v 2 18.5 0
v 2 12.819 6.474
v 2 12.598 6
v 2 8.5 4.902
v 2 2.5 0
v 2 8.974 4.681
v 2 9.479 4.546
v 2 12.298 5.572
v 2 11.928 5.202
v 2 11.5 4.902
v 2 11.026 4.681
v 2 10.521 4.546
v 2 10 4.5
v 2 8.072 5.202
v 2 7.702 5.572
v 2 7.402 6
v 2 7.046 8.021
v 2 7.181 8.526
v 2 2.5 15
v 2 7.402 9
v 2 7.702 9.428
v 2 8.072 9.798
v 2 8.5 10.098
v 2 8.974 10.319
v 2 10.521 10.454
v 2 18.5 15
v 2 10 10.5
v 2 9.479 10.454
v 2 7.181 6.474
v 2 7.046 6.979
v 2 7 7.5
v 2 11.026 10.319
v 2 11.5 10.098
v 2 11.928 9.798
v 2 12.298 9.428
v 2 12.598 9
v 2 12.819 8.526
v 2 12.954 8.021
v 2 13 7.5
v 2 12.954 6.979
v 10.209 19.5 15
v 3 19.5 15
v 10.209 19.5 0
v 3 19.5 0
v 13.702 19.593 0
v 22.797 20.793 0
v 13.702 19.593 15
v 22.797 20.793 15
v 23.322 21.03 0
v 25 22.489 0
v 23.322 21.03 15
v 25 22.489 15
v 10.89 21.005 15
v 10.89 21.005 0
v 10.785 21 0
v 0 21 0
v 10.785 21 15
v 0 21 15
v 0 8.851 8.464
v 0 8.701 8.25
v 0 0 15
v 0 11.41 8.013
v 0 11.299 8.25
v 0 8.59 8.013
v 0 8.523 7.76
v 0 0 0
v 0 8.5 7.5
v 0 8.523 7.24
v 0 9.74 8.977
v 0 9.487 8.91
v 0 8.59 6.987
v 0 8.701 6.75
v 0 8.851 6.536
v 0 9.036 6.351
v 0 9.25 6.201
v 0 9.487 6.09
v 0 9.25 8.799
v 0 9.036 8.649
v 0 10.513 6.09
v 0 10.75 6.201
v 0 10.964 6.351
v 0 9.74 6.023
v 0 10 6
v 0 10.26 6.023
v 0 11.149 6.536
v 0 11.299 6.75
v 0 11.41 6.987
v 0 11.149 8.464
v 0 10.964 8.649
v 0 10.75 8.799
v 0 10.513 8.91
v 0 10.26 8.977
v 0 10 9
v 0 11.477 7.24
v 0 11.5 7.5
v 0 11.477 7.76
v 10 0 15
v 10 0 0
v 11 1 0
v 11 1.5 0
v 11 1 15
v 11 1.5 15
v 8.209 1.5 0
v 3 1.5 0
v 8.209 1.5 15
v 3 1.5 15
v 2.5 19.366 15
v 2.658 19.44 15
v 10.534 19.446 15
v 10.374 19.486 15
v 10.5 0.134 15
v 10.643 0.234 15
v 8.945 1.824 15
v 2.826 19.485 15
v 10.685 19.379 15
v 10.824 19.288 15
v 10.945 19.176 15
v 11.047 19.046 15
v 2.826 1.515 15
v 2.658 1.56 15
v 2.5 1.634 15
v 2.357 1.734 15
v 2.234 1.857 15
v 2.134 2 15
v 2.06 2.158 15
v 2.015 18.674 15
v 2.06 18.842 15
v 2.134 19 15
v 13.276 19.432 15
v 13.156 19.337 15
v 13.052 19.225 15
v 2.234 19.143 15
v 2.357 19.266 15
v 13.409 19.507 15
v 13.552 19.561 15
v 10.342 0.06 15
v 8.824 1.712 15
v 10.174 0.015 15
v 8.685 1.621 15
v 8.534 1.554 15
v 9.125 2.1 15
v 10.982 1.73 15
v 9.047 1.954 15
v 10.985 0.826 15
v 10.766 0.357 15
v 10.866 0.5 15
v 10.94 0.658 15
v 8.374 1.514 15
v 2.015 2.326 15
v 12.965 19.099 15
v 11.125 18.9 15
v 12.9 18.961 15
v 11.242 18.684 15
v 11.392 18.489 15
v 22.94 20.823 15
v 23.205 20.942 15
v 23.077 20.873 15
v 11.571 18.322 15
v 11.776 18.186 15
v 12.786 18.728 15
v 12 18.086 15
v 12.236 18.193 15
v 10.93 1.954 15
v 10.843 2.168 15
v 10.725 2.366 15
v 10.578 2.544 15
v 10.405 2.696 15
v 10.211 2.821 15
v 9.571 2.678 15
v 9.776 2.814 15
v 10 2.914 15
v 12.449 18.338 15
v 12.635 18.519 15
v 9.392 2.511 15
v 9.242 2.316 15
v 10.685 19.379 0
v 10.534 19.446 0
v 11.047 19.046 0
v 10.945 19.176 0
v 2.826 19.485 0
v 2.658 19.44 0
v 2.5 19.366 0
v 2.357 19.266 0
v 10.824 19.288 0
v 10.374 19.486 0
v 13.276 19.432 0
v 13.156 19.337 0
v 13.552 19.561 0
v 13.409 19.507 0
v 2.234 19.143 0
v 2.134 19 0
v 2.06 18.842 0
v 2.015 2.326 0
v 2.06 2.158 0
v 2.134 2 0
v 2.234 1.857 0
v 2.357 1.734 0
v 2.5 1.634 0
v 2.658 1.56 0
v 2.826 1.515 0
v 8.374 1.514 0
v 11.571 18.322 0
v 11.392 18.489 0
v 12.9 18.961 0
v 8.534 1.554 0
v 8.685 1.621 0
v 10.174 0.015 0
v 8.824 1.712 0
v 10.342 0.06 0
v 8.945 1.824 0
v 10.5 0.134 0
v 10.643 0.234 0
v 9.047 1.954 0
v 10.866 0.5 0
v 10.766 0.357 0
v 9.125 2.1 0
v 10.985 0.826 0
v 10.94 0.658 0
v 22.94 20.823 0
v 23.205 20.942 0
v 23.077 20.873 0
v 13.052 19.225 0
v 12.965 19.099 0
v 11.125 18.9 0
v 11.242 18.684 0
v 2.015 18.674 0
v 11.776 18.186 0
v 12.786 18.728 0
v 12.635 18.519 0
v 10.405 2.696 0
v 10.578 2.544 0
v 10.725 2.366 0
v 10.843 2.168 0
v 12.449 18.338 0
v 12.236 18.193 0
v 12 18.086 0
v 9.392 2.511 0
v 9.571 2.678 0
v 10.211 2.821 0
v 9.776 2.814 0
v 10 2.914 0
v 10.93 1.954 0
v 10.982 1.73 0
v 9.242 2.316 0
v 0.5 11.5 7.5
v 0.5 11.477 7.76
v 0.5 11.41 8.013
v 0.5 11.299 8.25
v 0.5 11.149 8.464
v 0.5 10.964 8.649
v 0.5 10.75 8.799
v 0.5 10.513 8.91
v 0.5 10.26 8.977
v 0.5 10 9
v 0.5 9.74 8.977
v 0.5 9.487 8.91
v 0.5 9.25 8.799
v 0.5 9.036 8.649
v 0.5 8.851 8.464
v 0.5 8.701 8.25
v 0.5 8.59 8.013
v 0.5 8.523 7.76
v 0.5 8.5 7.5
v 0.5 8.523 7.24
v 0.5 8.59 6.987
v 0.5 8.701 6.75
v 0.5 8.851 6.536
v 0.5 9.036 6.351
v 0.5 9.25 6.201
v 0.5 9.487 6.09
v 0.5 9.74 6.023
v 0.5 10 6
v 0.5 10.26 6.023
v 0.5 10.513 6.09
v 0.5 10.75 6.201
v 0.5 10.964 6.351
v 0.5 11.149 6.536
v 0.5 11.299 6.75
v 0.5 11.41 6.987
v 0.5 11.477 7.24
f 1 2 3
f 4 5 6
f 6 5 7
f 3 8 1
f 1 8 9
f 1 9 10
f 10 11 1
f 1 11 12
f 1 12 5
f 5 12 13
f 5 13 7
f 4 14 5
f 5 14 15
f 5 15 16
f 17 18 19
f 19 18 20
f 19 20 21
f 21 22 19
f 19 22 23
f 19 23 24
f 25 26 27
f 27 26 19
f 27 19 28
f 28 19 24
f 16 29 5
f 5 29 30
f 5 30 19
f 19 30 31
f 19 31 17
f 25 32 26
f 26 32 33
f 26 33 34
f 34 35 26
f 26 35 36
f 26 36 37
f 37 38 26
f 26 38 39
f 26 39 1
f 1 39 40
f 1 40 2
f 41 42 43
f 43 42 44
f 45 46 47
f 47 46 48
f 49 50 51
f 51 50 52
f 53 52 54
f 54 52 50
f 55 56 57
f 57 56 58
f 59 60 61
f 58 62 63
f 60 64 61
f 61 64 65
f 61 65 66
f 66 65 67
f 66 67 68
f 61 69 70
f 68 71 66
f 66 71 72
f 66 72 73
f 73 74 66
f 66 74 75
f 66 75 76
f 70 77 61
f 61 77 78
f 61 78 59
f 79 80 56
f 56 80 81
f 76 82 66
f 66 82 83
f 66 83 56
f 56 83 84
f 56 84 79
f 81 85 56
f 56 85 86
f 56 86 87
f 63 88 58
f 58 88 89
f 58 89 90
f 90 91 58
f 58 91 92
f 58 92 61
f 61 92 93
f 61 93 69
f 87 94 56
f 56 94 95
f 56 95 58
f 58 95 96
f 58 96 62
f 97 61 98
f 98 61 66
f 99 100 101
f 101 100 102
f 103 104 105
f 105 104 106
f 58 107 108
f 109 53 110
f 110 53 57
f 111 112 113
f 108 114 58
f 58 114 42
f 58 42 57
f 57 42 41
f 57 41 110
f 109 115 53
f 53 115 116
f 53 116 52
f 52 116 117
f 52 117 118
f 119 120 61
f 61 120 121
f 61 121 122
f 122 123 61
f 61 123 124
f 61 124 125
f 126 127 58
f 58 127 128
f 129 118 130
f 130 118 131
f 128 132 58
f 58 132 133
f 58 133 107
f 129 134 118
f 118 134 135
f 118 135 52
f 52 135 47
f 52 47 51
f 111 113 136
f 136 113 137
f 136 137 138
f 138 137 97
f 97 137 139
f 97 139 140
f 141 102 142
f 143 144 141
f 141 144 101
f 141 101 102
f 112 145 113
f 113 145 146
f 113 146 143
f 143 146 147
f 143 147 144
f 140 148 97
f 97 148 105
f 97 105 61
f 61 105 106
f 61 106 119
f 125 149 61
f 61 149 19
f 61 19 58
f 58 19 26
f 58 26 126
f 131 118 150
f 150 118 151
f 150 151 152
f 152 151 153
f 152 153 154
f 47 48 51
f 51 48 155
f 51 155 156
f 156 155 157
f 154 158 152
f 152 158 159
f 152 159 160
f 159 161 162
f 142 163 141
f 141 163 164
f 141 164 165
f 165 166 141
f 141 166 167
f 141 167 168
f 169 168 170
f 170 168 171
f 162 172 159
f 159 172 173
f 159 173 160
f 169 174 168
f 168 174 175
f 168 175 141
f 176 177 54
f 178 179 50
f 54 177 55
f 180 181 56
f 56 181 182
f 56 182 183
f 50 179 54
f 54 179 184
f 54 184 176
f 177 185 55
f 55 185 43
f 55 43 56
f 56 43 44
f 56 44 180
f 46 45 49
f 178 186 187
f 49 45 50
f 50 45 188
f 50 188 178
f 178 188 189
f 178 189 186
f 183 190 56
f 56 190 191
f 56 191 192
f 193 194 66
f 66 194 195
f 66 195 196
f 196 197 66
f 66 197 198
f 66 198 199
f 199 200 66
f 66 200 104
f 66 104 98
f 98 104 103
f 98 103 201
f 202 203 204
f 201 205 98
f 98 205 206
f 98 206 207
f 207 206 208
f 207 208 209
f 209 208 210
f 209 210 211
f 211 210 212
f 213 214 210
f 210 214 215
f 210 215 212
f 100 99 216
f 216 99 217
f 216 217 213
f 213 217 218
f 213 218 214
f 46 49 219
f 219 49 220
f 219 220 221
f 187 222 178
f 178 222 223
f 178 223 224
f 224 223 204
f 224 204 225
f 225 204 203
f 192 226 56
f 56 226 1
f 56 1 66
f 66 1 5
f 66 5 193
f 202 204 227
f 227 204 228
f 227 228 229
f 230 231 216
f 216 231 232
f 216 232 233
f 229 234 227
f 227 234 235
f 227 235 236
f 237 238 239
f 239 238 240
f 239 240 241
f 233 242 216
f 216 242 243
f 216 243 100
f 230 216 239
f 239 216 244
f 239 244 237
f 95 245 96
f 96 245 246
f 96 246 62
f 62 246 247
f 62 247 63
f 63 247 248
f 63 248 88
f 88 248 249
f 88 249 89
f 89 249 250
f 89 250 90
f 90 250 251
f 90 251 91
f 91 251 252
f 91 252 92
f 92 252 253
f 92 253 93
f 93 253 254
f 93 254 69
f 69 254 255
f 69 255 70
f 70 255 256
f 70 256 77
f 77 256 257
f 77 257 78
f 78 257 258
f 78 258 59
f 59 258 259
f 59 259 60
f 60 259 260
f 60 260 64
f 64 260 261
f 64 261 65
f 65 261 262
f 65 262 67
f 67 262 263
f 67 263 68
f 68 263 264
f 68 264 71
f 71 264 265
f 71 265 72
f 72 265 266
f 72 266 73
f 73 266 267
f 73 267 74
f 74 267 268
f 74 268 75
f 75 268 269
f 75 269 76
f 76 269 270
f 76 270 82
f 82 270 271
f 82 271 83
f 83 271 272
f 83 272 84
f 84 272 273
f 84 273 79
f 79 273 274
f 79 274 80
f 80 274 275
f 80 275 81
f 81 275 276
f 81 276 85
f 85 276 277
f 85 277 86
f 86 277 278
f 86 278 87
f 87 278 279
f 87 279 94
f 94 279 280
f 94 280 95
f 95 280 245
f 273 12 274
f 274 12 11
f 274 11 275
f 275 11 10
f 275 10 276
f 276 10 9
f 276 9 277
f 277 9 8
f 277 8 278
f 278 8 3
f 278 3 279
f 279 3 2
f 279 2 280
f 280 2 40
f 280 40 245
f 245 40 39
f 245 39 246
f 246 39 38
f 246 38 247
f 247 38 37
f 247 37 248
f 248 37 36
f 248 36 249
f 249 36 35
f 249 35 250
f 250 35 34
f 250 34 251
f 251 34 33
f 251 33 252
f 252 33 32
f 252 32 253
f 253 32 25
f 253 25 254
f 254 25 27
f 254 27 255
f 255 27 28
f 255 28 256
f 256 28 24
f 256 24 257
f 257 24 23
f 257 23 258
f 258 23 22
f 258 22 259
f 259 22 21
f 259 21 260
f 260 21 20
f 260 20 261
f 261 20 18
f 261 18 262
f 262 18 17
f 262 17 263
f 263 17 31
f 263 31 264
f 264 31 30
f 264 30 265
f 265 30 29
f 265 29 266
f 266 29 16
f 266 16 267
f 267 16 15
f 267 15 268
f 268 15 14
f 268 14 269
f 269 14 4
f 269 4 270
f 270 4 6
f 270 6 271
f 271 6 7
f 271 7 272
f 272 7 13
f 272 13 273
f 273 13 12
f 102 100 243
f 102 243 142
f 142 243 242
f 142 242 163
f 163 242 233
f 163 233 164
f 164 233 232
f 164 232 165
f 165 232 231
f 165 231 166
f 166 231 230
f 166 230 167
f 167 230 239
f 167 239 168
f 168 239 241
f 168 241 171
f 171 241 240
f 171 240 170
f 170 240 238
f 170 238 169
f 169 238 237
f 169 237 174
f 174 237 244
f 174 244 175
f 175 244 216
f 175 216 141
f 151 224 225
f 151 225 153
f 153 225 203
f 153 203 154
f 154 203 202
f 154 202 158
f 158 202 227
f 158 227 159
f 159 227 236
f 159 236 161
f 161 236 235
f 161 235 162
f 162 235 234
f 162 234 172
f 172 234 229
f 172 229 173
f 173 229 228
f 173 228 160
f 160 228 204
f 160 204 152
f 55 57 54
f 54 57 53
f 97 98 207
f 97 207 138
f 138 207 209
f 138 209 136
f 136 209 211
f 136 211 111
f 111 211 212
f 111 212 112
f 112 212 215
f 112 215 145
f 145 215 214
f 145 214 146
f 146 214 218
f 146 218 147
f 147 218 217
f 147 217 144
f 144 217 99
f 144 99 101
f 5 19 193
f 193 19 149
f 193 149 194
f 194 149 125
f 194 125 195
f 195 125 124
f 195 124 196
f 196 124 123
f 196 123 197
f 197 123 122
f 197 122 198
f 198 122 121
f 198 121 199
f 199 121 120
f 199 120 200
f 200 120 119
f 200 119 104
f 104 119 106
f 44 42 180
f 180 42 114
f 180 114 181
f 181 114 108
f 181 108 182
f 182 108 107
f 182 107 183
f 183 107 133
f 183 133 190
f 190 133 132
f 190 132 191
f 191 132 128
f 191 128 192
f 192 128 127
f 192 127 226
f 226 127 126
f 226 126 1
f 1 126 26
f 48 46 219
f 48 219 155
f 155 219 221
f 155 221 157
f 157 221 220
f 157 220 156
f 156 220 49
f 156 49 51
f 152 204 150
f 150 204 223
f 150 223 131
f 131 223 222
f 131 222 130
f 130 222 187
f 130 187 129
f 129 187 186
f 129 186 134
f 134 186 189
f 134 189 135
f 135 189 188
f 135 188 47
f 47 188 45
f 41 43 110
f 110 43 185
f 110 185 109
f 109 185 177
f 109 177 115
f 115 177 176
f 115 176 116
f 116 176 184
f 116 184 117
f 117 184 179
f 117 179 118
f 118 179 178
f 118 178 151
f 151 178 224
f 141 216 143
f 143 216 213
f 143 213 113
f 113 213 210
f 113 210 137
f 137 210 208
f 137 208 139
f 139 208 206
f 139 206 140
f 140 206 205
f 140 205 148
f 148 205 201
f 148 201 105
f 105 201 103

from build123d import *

# Parameters (mm, degrees)
BOSS_EXTRUDE1_DEPTH     = 15
CUT_EXTRUDE1_DEPTH      = 36.492719011
CUT_EXTRUDE1_DEPTH_BACK = 36.492719011
SKETCH2_R               = 1.5
CHAMFER1_SIZE           = 1.5
FILLET1_R               = 1.5
FILLET2_R               = 1
FILLET3_R               = 1


with BuildPart() as part:
    # Sketch1 → Boss-Extrude1 (new body)
    with BuildSketch(Plane.XY):
        Polygon((0, 0), (11, 0), (11, 3), (9, 3), (9, 1.5), (2, 1.5), (2, 19.5), (11, 19.5), (11, 18), (13, 18), (13, 19.5), (23.094875358, 20.832410877), (25, 22.488510462), (10.837768967, 21), (0, 21), align=None)
    extrude(amount=BOSS_EXTRUDE1_DEPTH)

    # Sketch2 → Cut-Extrude1 (cut, two sides: drawn at the far end of the back side and taken through both)
    with BuildSketch(Plane(origin=(2, 0, 0), x_dir=(0, 0, -1), z_dir=(1, 0, 0)).offset(-CUT_EXTRUDE1_DEPTH_BACK)):
        with Locations(Location((-7.5, 10, 0), (0, 0, 90))):
            Circle(SKETCH2_R)
    extrude(amount=CUT_EXTRUDE1_DEPTH + CUT_EXTRUDE1_DEPTH_BACK, mode=Mode.SUBTRACT)

    # Chamfer1
    chamfer1_edges = [part.edges().sort_by_distance(p)[0] for p in [
        (2, 8.5, 7.5),
    ]]
    chamfer(chamfer1_edges, length=CHAMFER1_SIZE)

    # Fillet1
    # the kernel refuses this fillet: 1.5 mm, written as the material it takes off along each edge
    with BuildSketch(Plane(origin=(9, 3, -3.75), x_dir=(1, 0, 0), z_dir=(0, 0, 1)), Plane(origin=(11, 3, -3.75), x_dir=(0, -1, 0), z_dir=(0, 0, 1)), Plane(origin=(13, 18, -3.75), x_dir=(-1, 0, 0), z_dir=(0, 0, 1)), Plane(origin=(11, 18, -3.75), x_dir=(0, 1, 0), z_dir=(0, 0, 1))) as fillet1_piece_1:
        with BuildLine():
            CenterArc((FILLET1_R, -FILLET1_R), FILLET1_R, 90, 90)
            Line((0, -FILLET1_R), (0, 0))
            Line((0, 0), (FILLET1_R, 0))
        make_face()
    extrude(amount=22.5, mode=Mode.SUBTRACT)

    # Fillet2
    fillet2_edges = [part.edges().sort_by_distance(p)[0] for p in [
        (2, 1.5, 7.5),
        (11, 0, 7.5),
        (10.837768967, 21, 7.5),
        (23.094875358, 20.832410877, 7.5),
        (2, 19.5, 7.5),
    ]]
    fillet(fillet2_edges, radius=FILLET2_R)

    # Fillet3
    fillet3_edges = [part.edges().sort_by_distance(p)[0] for p in [
        (9, 1.5, 7.5),
        (13, 19.5, 7.5),
        (11, 19.5, 7.5),
    ]]
    fillet(fillet3_edges, radius=FILLET3_R)


solid = part.part
